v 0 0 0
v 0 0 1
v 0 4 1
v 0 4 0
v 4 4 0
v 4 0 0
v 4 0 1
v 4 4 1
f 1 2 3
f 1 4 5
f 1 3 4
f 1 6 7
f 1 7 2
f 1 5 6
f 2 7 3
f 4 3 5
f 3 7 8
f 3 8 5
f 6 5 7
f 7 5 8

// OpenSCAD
/* Warning, this is a very basic generator with a lot of approximation 
input data : [VQFN, RKX, 4x4x1mm, 24, , A, C04-17027A]
generated by com.zoubworld.electronics.cad.model3d.Basic
Date : Sun Feb 15 10:50:49 CET 2026
*/

//body
color("black")
translate([0,0,0])
cube([4.0,4.0,1.0], center=false);
